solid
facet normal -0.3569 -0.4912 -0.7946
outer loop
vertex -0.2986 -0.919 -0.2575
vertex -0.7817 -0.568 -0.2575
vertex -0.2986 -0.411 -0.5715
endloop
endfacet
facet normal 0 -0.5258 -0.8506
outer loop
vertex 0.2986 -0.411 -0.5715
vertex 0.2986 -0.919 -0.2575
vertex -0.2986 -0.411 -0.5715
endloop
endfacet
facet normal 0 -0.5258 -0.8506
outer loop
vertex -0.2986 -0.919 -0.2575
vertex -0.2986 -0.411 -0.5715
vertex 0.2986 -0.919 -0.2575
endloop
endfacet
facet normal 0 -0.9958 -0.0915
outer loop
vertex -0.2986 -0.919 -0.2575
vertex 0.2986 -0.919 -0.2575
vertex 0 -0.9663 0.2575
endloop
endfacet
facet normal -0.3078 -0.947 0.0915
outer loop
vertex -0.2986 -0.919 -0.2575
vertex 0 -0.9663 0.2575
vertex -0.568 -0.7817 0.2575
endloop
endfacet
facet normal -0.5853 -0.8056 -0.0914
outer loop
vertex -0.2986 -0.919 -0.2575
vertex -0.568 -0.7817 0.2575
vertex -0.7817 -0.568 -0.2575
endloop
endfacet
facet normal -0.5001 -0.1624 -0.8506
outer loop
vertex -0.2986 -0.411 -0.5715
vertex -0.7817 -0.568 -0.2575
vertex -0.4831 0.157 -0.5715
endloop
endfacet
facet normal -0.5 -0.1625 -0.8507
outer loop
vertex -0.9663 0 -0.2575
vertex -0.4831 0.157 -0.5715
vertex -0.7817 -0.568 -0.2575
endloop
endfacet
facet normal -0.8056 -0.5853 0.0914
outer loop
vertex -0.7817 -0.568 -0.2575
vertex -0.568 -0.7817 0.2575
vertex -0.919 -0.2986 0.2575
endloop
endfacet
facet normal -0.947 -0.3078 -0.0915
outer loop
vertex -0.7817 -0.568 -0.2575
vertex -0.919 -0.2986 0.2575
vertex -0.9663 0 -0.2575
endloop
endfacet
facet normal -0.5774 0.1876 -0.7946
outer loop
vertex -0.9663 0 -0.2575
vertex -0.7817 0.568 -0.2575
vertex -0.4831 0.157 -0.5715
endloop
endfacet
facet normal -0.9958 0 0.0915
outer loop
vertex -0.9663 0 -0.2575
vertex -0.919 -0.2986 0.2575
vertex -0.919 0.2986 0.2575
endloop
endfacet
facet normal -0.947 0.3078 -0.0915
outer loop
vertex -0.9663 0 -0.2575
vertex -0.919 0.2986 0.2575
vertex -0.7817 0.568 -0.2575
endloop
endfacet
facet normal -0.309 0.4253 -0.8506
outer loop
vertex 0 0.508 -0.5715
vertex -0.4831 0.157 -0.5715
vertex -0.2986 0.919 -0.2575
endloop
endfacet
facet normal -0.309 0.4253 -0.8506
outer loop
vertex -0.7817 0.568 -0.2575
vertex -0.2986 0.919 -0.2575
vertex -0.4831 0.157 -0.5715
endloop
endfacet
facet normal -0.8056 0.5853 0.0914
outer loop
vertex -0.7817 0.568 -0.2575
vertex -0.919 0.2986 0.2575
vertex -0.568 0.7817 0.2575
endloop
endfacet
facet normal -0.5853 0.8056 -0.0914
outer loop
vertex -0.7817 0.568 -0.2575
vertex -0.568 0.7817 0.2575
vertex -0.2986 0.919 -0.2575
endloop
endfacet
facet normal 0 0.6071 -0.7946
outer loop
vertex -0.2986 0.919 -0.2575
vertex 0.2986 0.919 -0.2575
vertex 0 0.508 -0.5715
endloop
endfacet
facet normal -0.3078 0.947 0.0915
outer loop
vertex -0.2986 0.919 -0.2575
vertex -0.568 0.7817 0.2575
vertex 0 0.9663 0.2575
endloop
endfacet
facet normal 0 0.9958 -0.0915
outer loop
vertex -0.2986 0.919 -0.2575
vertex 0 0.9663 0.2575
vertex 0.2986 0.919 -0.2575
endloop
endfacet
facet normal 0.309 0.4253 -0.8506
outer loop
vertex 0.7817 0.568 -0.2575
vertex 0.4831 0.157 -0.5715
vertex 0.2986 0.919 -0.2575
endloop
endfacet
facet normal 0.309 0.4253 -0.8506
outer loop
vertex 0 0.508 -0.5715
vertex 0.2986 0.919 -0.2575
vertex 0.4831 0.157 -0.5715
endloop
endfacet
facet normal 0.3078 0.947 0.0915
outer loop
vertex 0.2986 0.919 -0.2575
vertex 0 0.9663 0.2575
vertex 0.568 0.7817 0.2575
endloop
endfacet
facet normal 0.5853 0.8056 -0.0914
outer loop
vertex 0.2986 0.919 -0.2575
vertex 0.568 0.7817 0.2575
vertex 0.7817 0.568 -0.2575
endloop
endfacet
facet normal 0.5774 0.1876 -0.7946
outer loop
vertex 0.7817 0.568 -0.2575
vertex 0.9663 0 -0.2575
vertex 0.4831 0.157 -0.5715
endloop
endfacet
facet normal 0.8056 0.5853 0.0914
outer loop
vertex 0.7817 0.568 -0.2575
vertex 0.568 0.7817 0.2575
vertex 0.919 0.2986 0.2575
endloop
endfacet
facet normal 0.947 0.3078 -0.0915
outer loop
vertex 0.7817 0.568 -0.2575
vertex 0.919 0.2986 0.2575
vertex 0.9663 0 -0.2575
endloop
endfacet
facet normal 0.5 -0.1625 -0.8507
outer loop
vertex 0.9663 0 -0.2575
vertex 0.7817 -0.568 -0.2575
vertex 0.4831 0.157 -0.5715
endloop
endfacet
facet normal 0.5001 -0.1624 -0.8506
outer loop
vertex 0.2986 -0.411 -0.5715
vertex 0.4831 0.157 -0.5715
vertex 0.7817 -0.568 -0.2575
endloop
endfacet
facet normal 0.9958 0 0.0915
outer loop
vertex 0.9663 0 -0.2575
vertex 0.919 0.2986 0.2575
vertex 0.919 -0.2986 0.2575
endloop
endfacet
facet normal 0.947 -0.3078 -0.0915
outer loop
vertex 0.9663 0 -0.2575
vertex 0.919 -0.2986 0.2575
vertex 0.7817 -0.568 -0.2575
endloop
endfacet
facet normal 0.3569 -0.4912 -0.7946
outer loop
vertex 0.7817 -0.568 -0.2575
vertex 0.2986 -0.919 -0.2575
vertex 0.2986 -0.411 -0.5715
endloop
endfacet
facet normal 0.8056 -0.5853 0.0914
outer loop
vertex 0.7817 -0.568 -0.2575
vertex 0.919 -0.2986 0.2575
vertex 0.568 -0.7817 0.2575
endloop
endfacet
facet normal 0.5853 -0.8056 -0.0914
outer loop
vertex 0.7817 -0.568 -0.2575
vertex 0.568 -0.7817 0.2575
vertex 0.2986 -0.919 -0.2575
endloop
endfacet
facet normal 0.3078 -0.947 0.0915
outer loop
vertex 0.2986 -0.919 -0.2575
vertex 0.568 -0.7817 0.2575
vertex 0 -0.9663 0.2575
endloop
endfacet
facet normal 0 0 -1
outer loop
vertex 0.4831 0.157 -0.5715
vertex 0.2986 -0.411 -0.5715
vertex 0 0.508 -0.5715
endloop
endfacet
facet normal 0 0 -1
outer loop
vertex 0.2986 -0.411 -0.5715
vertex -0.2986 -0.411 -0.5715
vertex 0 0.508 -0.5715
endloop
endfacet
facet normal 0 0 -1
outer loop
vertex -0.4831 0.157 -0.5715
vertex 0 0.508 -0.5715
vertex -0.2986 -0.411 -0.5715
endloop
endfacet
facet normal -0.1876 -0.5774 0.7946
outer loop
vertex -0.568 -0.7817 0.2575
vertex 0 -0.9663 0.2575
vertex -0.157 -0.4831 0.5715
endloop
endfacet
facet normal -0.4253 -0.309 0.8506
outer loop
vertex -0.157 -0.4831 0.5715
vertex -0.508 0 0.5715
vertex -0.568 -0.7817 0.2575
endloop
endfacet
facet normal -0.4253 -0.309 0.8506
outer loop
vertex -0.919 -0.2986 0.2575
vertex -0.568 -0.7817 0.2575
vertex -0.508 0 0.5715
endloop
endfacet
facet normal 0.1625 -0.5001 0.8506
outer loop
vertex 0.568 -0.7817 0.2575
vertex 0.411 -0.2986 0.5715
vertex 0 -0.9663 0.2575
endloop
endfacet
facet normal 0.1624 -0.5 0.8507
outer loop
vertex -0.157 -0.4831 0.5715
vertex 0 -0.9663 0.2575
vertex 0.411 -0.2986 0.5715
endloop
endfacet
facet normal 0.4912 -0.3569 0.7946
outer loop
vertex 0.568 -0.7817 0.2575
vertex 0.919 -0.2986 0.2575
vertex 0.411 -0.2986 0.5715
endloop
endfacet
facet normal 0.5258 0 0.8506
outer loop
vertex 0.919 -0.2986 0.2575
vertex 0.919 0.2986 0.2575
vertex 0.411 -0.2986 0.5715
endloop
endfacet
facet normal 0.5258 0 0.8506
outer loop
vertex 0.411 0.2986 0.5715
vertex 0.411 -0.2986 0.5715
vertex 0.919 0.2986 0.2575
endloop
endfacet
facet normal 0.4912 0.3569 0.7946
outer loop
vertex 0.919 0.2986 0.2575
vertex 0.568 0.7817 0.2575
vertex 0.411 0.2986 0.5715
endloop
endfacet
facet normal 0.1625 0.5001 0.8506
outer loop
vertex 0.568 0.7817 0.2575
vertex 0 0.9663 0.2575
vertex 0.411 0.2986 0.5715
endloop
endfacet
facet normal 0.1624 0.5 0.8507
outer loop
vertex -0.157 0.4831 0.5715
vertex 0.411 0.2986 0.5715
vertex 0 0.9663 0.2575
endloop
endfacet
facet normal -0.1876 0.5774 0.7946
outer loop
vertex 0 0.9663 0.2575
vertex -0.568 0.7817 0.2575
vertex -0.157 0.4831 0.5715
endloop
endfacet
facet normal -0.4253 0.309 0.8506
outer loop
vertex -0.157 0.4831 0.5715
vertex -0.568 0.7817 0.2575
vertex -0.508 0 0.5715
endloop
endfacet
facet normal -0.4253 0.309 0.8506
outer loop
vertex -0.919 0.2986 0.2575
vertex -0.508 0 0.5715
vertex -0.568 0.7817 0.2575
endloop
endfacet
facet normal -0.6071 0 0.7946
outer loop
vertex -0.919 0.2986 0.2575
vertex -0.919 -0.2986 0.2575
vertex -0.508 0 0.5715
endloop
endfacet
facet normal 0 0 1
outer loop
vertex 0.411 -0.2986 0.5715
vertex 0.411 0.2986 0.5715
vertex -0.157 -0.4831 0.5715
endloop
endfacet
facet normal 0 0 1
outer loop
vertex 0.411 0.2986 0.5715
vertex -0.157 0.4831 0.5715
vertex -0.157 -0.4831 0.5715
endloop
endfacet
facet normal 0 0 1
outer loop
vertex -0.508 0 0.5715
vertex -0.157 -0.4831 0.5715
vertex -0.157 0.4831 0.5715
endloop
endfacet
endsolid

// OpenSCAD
polyhedron( points = [[-0.298595748816025, -0.91898322388562, -0.257508079908806], [-0.781733821139621, -0.567962867390972, -0.257508079908806], [-0.966276143817237, 1.14262278455845e-10, -0.257508079908806], [-0.781733821952769, 0.567962867602922, -0.257508079908806], [-0.298595750131726, 0.918983224054187, -0.257508079908806], [0.29859574947954, 0.918983224054193, -0.257508079908806], [0.781733821834654, 0.567962867602922, -0.257508079908806], [0.96627614456327, 1.14262278455845e-10, -0.257508079908806], [0.781733822749808, -0.567962867390969, -0.257508079908806], [0.29859575096028, -0.91898322388562, -0.257508079908806], [-0.298595748789213, -0.410981791174625, -0.571470230782916], [-0.483138071066945, 0.156981075565126, -0.571470231111656], [1.13322228200381e-09, 0.508001431815041, -0.571470231111656], [0.483138073248958, 0.156981075448918, -0.571470231111658], [0.298595750787451, -0.410981791298834, -0.57147023070615], [-0.56796286626447, -0.781733822174119, 0.257508080228484], [1.08760759380516e-09, -0.966276144556471, 0.257508080228484], [0.567962867624206, -0.781733822221298, 0.257508080142258], [0.918983222828535, -0.298595750035902, 0.257508080002741], [0.91898322176302, 0.298595749694198, 0.257508079863224], [0.567962864834653, 0.781733821877233, 0.257508079776998], [-2.36046268411508e-09, 0.966276144208586, 0.257508079776998], [-0.567962868913628, 0.781733821924417, 0.257508079863224], [-0.918983224161343, 0.298595749770537, 0.257508080002741], [-0.918983223149456, -0.298595749959563, 0.257508080142258], [-0.156981074864052, -0.483138071854114, 0.571470230719834], [0.410981791185755, -0.298595749912403, 0.571470230962348], [0.410981790102044, 0.298595749739024, 0.571470230822832], [-0.156981077023877, 0.483138072028764, 0.571470230822832], [-0.508001431732179, 1.25919554031091e-10, 0.571470230556843]], faces = [[0, 1, 10], [0, 10, 14, 9], [0, 9, 16], [0, 16, 15], [0, 15, 1], [1, 2, 11, 10], [1, 15, 24], [1, 24, 2], [2, 3, 11], [2, 24, 23], [2, 23, 3], [3, 4, 12, 11], [3, 23, 22], [3, 22, 4], [4, 5, 12], [4, 22, 21], [4, 21, 5], [5, 6, 13, 12], [5, 21, 20], [5, 20, 6], [6, 7, 13], [6, 20, 19], [6, 19, 7], [7, 8, 14, 13], [7, 19, 18], [7, 18, 8], [8, 9, 14], [8, 18, 17], [8, 17, 9], [9, 17, 16], [10, 11, 12, 13, 14], [15, 16, 25], [15, 25, 29, 24], [16, 17, 26, 25], [17, 18, 26], [18, 19, 27, 26], [19, 20, 27], [20, 21, 28, 27], [21, 22, 28], [22, 23, 29, 28], [23, 24, 29], [25, 26, 27, 28, 29]]);
